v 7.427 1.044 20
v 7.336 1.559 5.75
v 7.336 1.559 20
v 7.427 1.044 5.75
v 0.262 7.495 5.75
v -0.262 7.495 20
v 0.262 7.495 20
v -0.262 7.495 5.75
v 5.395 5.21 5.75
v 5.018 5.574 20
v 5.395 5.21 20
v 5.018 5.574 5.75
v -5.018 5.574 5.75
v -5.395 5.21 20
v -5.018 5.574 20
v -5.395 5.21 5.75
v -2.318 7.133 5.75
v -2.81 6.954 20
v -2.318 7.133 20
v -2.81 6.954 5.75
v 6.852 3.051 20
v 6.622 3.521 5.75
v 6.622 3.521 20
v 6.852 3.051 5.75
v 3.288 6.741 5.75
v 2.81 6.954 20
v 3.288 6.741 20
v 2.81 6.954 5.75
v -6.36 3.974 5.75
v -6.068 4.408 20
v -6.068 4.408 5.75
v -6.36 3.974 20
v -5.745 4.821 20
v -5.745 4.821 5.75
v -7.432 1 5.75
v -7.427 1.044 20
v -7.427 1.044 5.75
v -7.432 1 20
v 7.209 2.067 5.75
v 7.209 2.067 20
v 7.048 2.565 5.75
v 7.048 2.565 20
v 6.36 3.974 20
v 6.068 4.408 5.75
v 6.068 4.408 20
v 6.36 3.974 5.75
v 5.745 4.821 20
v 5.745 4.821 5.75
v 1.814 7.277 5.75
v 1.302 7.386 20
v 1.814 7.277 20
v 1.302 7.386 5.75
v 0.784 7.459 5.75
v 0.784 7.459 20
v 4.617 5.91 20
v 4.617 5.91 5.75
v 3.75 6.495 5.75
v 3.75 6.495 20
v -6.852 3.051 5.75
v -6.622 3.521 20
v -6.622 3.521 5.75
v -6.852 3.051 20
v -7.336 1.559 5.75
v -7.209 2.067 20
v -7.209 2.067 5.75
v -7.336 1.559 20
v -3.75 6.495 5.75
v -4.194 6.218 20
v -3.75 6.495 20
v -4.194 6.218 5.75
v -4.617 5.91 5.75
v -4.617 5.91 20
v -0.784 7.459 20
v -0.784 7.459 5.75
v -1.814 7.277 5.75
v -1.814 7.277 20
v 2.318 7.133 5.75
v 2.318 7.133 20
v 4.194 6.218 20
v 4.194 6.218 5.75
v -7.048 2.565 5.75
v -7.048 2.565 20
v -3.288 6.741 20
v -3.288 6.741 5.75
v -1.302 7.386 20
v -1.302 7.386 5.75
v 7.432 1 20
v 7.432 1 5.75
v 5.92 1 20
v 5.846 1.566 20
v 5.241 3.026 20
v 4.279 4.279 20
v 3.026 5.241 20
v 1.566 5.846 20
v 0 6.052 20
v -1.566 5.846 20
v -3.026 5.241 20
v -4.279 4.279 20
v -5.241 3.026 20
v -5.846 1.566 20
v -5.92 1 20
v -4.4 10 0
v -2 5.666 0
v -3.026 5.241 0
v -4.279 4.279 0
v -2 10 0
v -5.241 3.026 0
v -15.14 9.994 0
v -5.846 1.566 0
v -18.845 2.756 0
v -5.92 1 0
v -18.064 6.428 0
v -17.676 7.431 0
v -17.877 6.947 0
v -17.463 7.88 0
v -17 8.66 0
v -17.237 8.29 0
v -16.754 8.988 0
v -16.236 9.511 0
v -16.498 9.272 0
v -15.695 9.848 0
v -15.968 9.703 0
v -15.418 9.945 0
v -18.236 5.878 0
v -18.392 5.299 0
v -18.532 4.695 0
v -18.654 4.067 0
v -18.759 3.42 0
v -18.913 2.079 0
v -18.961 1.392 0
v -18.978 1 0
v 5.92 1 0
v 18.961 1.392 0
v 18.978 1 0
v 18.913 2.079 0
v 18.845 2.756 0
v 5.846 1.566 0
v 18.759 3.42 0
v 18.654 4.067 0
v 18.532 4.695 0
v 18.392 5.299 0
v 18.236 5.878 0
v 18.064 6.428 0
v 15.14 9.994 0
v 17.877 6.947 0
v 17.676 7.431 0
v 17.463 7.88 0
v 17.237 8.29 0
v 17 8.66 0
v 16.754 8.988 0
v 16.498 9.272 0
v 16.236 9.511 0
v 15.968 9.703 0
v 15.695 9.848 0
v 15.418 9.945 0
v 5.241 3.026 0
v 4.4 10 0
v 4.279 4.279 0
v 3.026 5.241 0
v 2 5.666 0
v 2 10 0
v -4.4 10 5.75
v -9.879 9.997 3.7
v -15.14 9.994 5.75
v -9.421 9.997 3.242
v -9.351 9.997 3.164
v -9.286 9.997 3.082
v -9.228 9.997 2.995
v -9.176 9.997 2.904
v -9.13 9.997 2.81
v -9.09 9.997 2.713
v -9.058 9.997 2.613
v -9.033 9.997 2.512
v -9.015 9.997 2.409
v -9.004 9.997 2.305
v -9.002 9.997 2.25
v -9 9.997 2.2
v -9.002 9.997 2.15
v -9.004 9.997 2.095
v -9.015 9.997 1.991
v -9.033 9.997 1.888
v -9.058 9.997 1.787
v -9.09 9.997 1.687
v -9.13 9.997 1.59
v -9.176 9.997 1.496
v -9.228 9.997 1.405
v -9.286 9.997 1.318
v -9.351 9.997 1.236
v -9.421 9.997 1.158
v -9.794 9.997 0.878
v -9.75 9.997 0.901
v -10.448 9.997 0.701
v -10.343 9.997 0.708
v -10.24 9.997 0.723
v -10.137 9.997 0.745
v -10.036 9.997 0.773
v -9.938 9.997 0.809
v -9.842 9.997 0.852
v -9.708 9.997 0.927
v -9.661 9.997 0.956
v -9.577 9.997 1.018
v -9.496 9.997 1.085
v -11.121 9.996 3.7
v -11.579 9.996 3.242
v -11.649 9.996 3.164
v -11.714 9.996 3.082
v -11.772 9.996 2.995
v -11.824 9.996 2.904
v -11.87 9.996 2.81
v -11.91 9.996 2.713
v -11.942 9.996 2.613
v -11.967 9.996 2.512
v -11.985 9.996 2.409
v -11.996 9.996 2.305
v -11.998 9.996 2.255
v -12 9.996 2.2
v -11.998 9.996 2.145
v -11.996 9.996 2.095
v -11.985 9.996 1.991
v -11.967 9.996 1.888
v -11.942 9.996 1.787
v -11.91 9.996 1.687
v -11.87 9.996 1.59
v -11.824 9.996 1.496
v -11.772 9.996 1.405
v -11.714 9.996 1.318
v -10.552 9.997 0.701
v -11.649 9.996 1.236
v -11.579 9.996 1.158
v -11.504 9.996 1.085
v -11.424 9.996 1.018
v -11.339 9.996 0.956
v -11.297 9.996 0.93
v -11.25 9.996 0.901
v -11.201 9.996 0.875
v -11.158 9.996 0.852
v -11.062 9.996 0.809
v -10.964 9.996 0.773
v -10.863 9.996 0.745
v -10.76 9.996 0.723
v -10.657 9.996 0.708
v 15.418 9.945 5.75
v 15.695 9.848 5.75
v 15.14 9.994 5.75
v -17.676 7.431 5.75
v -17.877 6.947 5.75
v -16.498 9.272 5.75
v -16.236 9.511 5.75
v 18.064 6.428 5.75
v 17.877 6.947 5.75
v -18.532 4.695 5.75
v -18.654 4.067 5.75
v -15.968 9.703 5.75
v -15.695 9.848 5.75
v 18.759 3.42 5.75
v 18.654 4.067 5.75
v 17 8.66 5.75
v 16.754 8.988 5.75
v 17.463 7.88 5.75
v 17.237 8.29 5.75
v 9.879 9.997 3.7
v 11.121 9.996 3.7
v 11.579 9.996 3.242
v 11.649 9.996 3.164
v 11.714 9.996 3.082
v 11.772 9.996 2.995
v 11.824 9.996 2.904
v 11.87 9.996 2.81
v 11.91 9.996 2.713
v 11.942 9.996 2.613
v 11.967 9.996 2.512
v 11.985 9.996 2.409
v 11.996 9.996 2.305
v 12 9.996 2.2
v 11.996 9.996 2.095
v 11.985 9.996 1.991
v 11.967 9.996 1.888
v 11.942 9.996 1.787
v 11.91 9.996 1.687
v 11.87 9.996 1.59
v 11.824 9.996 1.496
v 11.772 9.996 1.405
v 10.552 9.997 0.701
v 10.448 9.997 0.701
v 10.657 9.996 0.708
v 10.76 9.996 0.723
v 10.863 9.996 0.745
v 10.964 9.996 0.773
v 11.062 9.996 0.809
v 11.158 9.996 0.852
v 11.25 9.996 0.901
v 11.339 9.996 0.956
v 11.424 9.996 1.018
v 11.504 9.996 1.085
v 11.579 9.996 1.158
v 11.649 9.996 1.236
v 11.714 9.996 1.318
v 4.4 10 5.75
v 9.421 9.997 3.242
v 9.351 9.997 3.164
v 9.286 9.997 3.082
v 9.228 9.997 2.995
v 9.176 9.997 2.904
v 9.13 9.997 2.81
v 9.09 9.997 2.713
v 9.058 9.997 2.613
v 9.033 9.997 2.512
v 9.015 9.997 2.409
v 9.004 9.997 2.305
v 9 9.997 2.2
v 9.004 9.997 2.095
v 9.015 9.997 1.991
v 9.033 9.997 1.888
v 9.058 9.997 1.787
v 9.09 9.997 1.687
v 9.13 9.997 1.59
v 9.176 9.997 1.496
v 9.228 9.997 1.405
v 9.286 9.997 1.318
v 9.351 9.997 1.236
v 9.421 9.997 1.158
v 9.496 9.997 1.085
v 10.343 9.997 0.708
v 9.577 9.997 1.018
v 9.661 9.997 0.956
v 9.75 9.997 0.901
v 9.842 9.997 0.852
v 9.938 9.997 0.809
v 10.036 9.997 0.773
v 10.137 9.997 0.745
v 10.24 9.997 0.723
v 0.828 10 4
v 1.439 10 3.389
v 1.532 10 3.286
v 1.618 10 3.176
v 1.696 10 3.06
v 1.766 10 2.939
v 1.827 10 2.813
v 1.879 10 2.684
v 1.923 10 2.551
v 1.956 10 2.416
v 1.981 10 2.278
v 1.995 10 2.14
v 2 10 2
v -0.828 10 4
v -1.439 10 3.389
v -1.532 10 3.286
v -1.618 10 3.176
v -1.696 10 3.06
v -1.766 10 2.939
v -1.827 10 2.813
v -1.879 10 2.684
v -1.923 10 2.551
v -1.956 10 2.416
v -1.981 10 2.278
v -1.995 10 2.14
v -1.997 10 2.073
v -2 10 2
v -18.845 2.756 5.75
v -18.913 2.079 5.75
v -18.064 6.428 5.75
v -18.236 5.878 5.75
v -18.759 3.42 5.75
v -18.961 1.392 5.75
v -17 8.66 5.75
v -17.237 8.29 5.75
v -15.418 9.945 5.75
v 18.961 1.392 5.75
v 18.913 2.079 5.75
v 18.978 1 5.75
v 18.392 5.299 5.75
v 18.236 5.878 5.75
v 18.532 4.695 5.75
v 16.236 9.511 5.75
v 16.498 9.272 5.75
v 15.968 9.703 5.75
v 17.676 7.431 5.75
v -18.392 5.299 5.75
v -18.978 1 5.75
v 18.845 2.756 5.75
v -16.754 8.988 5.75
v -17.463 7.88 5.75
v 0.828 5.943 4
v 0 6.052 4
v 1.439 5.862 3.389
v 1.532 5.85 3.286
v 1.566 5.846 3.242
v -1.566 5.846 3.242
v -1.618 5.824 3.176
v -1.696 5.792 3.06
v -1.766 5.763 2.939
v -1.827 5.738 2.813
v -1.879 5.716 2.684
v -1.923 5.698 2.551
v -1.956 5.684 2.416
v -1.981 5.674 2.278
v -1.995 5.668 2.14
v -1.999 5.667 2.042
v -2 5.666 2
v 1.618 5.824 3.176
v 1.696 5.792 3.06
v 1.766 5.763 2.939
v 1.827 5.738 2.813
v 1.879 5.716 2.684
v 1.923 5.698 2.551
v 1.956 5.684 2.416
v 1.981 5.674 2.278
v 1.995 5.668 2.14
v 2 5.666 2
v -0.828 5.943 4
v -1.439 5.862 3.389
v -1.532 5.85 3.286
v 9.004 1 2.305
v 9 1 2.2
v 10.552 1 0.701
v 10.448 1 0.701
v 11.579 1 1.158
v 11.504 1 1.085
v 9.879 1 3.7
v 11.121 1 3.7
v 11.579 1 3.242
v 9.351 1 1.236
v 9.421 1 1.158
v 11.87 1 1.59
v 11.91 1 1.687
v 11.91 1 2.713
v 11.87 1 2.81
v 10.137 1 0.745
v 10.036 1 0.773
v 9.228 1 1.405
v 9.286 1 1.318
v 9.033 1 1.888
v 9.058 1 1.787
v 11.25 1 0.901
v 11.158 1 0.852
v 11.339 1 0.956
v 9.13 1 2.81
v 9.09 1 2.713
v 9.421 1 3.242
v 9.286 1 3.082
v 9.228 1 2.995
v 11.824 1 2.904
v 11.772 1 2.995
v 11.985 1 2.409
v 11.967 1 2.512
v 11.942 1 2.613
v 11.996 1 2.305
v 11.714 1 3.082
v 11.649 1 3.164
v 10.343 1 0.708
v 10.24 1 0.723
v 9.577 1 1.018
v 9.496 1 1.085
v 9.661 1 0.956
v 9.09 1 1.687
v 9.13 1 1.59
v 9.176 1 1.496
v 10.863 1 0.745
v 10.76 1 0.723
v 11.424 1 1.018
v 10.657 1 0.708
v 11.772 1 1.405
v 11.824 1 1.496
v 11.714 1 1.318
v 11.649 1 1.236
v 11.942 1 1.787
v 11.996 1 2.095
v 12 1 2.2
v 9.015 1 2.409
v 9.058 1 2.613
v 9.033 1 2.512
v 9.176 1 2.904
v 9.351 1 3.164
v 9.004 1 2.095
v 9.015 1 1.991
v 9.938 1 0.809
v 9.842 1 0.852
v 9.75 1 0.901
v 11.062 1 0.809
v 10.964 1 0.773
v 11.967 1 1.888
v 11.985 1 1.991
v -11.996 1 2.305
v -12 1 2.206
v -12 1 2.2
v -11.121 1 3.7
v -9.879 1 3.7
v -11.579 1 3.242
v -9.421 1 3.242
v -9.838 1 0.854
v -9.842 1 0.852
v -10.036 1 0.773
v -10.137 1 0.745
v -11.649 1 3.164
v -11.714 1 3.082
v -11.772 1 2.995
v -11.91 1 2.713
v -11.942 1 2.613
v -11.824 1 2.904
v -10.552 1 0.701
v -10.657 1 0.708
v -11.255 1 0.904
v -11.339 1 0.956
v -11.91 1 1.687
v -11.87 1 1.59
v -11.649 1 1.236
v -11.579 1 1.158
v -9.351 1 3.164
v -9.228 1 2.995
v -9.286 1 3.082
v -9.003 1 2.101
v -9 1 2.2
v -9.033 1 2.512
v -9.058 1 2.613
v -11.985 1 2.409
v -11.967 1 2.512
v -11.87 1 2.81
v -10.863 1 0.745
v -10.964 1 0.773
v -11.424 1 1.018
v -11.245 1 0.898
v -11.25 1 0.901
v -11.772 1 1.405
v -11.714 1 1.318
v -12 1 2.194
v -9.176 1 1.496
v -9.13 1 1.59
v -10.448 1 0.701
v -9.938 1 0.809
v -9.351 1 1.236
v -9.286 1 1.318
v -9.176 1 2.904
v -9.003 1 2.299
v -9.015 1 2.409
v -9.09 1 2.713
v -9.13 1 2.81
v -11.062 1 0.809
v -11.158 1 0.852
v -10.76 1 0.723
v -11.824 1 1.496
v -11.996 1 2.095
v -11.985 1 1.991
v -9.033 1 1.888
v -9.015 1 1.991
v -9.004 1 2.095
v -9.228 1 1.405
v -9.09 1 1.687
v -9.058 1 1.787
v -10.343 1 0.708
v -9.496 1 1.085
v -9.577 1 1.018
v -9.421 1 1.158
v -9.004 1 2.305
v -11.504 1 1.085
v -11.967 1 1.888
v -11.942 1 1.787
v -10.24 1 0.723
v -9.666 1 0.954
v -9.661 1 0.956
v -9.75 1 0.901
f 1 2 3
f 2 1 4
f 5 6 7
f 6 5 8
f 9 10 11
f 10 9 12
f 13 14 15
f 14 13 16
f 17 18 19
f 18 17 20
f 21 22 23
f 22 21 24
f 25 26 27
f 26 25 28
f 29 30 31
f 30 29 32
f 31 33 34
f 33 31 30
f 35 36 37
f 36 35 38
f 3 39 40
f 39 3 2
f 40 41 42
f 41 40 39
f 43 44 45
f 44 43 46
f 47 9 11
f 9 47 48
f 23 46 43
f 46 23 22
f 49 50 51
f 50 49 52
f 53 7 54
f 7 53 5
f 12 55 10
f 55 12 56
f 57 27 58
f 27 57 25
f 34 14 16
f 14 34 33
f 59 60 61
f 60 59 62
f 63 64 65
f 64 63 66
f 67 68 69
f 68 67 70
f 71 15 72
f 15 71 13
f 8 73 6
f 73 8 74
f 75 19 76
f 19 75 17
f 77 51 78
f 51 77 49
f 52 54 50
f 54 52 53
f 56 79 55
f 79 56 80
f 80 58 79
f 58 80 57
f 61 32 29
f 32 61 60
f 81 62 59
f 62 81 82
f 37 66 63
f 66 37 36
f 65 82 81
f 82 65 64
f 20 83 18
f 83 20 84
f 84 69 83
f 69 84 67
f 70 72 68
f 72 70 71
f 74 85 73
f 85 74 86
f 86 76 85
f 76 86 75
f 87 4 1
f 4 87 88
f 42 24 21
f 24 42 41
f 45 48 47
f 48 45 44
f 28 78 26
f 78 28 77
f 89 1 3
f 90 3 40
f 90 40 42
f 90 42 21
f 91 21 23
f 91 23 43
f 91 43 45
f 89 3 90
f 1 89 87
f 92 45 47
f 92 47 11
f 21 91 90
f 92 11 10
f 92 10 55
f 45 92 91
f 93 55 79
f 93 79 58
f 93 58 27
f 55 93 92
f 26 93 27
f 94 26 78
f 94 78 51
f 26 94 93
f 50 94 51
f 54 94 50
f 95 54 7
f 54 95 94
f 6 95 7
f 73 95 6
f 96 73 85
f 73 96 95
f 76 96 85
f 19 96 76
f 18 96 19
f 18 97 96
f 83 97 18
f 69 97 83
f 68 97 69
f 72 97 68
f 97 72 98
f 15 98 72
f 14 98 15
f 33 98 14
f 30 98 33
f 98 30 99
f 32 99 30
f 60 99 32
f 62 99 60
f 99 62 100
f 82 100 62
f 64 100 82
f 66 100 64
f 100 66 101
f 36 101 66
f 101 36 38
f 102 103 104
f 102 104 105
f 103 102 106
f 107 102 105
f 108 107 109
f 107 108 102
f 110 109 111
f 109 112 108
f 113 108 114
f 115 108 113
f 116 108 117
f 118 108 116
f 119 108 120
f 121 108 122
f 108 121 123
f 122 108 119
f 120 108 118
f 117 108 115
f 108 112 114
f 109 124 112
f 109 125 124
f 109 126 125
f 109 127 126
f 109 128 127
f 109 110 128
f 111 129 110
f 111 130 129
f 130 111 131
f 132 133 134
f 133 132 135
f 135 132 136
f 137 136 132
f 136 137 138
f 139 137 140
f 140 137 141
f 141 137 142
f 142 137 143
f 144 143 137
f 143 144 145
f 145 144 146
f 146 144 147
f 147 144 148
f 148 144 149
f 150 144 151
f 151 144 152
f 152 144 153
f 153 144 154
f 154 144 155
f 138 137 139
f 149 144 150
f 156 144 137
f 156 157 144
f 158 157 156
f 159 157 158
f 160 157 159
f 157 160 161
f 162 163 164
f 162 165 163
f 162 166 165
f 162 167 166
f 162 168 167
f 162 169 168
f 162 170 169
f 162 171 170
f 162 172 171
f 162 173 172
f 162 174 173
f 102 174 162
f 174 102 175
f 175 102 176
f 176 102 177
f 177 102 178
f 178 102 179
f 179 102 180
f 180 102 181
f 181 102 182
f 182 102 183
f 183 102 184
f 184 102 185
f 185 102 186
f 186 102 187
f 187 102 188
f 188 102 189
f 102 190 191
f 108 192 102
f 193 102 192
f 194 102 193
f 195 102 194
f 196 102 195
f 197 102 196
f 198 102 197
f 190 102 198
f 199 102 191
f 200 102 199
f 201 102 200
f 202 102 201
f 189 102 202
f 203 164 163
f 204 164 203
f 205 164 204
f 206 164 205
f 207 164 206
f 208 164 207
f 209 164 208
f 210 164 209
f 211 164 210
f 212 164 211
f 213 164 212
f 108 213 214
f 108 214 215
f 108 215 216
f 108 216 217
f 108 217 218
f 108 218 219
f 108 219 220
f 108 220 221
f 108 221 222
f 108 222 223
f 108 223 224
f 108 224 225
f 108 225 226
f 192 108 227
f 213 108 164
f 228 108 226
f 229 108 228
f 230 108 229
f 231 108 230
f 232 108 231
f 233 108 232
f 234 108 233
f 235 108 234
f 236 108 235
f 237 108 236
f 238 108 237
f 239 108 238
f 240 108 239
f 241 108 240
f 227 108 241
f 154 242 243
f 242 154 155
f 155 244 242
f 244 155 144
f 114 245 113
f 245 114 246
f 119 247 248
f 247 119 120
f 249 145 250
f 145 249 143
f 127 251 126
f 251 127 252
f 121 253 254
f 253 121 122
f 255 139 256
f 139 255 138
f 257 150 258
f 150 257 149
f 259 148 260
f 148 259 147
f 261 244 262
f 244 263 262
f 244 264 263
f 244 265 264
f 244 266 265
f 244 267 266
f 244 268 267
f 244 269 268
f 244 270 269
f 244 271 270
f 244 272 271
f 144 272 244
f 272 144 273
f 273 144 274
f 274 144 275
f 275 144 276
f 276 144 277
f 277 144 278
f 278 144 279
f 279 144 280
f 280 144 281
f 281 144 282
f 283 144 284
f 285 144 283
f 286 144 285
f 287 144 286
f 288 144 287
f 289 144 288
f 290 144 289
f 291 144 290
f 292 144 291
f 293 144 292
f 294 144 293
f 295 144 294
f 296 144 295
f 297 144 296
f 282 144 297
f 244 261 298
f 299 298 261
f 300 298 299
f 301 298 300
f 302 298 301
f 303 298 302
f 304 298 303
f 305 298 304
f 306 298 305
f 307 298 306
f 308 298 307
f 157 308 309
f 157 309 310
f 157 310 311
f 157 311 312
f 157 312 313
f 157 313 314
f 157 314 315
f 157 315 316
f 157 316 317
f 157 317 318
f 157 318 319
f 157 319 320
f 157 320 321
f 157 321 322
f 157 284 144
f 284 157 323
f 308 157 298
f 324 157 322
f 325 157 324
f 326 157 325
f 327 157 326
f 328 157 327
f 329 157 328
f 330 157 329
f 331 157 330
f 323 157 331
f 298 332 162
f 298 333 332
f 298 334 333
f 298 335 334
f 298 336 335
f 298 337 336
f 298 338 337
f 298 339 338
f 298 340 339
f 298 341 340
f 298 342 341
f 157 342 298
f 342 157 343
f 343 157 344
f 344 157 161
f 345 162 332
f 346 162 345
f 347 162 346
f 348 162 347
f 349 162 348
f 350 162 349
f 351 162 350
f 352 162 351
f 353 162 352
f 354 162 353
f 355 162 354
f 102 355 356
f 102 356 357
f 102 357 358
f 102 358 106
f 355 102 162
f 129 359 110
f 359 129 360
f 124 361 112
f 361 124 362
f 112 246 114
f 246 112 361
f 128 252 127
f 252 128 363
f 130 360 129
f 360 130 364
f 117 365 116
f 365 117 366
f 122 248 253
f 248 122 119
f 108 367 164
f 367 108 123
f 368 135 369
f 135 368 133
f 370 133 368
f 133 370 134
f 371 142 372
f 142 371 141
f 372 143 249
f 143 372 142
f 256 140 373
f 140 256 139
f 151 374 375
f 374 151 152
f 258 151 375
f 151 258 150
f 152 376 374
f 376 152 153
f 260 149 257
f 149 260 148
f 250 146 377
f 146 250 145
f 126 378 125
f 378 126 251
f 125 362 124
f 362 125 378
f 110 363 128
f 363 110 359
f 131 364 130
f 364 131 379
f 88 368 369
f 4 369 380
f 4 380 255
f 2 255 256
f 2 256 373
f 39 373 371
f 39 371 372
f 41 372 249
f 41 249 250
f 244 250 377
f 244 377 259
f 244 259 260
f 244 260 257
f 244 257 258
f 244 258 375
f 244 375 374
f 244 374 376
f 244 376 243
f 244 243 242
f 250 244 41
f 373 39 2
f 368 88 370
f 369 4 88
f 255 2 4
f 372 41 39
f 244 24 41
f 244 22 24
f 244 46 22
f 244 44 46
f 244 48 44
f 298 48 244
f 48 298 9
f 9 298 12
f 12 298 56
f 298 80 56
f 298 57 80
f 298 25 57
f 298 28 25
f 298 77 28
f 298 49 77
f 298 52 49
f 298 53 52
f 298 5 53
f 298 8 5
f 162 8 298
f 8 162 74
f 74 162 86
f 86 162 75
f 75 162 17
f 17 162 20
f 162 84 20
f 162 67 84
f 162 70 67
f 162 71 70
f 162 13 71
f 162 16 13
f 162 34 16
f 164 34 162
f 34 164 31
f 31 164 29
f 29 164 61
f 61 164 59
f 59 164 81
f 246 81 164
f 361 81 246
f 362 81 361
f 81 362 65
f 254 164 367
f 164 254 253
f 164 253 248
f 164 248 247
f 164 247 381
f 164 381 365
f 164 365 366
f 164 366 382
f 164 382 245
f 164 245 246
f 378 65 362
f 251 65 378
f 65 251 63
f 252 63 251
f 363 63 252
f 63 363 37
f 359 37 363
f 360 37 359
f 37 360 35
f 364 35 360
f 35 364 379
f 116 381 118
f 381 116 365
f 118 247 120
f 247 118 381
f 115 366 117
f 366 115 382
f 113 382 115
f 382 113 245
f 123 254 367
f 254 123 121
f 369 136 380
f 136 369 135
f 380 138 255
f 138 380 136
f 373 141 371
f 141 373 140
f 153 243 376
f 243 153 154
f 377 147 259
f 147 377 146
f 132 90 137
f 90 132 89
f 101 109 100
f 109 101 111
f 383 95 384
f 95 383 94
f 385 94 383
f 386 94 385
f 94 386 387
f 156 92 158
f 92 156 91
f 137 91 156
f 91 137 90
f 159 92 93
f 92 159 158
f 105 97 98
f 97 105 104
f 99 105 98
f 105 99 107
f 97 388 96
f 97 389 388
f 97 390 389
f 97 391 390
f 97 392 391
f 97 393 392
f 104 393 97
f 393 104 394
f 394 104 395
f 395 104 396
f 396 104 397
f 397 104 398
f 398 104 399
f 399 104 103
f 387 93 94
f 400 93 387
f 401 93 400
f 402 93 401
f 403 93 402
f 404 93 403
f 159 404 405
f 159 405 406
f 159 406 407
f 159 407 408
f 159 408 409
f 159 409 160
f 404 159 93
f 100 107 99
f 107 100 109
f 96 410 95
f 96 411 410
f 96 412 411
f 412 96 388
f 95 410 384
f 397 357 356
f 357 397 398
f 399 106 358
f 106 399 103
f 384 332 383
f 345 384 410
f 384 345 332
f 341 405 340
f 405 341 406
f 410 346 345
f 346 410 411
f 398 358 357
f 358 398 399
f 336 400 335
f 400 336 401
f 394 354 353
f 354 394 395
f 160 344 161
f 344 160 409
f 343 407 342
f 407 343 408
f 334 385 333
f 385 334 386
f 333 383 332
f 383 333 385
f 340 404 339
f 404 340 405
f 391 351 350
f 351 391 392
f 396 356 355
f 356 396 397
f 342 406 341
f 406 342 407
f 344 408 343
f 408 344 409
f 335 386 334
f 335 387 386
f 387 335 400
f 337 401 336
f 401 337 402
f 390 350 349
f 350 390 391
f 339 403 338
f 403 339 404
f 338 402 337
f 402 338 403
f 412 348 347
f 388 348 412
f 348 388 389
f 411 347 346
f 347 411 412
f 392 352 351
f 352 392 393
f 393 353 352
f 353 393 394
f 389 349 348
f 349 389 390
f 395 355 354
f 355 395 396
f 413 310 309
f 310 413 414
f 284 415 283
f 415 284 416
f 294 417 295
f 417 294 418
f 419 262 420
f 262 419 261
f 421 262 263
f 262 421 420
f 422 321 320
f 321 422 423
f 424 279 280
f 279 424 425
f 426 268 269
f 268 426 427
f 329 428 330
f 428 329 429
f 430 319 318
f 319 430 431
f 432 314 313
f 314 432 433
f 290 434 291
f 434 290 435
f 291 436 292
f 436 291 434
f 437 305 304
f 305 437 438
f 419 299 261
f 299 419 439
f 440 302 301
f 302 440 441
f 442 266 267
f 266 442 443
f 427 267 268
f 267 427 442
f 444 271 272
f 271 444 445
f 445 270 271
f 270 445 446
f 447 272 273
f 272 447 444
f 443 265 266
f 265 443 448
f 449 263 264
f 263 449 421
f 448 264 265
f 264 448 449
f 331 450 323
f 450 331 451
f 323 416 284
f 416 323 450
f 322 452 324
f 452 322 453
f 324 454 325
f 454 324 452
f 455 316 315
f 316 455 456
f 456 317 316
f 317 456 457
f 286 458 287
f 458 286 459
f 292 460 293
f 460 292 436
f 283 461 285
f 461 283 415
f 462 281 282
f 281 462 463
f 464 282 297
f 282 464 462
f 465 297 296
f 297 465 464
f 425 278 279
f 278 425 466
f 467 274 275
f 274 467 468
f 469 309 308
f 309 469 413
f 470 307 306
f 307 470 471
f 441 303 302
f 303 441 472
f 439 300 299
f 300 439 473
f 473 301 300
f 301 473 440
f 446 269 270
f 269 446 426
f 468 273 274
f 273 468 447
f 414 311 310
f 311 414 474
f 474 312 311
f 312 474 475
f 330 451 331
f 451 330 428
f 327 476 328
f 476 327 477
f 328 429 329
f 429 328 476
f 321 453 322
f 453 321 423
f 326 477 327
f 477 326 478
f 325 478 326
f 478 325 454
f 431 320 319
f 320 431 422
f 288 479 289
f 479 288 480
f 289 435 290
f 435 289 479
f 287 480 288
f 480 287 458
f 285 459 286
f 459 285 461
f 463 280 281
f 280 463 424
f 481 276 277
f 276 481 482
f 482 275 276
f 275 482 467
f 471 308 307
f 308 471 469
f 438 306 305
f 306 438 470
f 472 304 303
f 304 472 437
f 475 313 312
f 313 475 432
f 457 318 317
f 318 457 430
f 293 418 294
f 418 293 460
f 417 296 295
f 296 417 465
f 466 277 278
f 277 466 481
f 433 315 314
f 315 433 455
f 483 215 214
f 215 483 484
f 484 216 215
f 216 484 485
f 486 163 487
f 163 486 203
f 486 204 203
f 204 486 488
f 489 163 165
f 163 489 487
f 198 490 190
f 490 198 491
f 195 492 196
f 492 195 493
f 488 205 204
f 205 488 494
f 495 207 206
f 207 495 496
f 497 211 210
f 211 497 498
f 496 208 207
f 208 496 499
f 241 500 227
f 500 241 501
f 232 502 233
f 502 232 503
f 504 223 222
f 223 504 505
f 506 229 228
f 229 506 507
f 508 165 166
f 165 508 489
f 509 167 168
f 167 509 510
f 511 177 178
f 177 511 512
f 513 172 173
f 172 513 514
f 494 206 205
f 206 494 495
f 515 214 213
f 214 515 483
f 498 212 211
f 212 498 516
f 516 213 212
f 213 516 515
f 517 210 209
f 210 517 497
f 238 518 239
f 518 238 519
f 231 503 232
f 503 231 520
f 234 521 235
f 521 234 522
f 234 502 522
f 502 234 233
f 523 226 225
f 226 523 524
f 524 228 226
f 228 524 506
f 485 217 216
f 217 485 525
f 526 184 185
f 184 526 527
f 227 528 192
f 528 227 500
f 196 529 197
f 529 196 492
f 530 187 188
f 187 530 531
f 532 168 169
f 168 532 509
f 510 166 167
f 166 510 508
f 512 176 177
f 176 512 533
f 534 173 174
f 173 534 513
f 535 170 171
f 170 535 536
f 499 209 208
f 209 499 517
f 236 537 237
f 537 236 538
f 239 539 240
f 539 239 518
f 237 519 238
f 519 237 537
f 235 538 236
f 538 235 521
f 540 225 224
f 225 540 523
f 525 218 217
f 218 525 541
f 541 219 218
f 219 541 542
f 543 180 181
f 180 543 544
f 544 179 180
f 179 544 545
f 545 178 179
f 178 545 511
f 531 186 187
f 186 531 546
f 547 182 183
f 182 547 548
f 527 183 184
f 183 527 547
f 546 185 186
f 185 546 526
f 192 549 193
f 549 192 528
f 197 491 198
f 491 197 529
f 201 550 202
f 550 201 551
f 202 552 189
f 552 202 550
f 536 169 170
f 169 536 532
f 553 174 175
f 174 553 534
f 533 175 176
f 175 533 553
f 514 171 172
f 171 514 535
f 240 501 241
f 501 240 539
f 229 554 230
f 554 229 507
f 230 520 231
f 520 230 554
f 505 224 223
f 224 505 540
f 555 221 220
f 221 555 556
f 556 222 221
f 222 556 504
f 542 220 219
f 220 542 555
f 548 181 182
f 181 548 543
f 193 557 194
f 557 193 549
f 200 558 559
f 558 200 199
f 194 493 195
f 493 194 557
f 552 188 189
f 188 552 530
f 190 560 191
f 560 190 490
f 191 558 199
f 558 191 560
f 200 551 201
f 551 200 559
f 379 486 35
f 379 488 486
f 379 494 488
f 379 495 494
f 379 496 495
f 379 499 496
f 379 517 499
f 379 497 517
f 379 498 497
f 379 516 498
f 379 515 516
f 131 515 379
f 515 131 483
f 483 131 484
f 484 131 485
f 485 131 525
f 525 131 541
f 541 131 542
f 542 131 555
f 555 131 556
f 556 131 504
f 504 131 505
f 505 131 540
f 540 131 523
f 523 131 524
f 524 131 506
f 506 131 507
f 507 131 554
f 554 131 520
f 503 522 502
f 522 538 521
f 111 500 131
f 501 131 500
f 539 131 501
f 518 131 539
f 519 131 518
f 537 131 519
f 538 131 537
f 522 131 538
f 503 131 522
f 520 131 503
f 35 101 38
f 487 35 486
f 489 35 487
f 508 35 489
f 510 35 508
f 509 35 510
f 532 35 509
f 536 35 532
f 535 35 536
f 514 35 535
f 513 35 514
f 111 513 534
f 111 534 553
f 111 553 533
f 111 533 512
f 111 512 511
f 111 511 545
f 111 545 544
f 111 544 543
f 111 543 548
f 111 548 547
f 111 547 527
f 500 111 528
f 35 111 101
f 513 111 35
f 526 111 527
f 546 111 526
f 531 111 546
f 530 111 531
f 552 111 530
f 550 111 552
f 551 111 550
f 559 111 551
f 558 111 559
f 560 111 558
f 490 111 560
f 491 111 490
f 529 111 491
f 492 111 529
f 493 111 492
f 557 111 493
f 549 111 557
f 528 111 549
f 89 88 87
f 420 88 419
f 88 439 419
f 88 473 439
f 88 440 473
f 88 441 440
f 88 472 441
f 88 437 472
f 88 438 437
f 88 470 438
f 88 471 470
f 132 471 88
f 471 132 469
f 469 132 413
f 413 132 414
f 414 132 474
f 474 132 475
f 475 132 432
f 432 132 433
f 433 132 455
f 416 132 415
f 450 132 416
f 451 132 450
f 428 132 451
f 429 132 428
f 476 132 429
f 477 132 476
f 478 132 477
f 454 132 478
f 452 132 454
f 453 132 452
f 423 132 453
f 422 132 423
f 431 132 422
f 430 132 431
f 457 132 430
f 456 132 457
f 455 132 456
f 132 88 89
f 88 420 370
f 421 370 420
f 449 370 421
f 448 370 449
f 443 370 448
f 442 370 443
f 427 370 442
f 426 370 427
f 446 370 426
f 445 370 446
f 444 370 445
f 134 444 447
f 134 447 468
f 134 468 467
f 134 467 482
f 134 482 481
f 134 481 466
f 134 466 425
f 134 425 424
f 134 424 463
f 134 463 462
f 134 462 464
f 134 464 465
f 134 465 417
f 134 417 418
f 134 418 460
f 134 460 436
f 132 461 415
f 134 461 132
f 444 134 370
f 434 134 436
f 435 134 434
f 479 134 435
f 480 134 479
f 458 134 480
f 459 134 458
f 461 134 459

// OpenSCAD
// file: trunctear.scad
//A module for truncated tear drops.

trunctear(1, 0.5, $fn = 90);

module trunctear(hei, radian, cent = false)
{
    linear_extrude(height = hei, center = cent)
        hull()
        {
            circle(r = radian);
            translate([0, radian/2])
                square([2*(radian*(2*cos(45)-1)), radian], center = true);
        }
}
// file: polyhole.scad
// The Cylinder is dead! Long live the Cylinder!
// A module for a polyhole by radius, based on Nophead's work.

module polyhole(h, r, cent = false)
{
    n = max(round(4 * r), 3);
    cylinder(h = h, r = r / cos(180 / n), $fn = n, center = cent);
}
// main file
// Half-clamp to hang the leadscrews.
//
// Uses two m3 bolts and, if the screw is tapped, one m4.

use<polyhole.scad>
use<trunctear.scad>

HalfClampNut();

module HalfClampNut()
{
    difference()
    {
        union()
        {
            cylinder(h = 20, r = 15/2, $fn = 90);
            hull()
            {
                translate([15, 0, 0])
                    scale([4, 10, 20-14.25])
                        cylinder(h = 1, r = 1, $fn = 90);
                translate([-15, 0, 0])
                    scale([4, 10, 20-14.25])
                        cylinder(h = 1, r = 1, $fn = 90);
                translate([0, 0, (20-14.25)/2])
                    cube([8.8, 20, 20-14.25], center = true);
            }
        }
        polyhole(24, 6);
        hull()
        {
            translate([0, 0, 2])
                rotate([90, 0, 180])
                    trunctear(19, 2, $fn = 90);
            translate([0, 0, 0])
                rotate([90, 0, 180])
                    trunctear(19, 2, $fn = 90);
        }
        translate([10.5, 0, 2.2])
            rotate([90, 0, 180])
                trunctear(19, 1.5, $fn = 90);
        translate([-10.5, 0, 2.2])
            rotate([90, 0, 180])
                trunctear(19, 1.5, $fn = 90);
        translate([0, -14, 0])
            cube([42, 30, 48], center = true);
    }
}
